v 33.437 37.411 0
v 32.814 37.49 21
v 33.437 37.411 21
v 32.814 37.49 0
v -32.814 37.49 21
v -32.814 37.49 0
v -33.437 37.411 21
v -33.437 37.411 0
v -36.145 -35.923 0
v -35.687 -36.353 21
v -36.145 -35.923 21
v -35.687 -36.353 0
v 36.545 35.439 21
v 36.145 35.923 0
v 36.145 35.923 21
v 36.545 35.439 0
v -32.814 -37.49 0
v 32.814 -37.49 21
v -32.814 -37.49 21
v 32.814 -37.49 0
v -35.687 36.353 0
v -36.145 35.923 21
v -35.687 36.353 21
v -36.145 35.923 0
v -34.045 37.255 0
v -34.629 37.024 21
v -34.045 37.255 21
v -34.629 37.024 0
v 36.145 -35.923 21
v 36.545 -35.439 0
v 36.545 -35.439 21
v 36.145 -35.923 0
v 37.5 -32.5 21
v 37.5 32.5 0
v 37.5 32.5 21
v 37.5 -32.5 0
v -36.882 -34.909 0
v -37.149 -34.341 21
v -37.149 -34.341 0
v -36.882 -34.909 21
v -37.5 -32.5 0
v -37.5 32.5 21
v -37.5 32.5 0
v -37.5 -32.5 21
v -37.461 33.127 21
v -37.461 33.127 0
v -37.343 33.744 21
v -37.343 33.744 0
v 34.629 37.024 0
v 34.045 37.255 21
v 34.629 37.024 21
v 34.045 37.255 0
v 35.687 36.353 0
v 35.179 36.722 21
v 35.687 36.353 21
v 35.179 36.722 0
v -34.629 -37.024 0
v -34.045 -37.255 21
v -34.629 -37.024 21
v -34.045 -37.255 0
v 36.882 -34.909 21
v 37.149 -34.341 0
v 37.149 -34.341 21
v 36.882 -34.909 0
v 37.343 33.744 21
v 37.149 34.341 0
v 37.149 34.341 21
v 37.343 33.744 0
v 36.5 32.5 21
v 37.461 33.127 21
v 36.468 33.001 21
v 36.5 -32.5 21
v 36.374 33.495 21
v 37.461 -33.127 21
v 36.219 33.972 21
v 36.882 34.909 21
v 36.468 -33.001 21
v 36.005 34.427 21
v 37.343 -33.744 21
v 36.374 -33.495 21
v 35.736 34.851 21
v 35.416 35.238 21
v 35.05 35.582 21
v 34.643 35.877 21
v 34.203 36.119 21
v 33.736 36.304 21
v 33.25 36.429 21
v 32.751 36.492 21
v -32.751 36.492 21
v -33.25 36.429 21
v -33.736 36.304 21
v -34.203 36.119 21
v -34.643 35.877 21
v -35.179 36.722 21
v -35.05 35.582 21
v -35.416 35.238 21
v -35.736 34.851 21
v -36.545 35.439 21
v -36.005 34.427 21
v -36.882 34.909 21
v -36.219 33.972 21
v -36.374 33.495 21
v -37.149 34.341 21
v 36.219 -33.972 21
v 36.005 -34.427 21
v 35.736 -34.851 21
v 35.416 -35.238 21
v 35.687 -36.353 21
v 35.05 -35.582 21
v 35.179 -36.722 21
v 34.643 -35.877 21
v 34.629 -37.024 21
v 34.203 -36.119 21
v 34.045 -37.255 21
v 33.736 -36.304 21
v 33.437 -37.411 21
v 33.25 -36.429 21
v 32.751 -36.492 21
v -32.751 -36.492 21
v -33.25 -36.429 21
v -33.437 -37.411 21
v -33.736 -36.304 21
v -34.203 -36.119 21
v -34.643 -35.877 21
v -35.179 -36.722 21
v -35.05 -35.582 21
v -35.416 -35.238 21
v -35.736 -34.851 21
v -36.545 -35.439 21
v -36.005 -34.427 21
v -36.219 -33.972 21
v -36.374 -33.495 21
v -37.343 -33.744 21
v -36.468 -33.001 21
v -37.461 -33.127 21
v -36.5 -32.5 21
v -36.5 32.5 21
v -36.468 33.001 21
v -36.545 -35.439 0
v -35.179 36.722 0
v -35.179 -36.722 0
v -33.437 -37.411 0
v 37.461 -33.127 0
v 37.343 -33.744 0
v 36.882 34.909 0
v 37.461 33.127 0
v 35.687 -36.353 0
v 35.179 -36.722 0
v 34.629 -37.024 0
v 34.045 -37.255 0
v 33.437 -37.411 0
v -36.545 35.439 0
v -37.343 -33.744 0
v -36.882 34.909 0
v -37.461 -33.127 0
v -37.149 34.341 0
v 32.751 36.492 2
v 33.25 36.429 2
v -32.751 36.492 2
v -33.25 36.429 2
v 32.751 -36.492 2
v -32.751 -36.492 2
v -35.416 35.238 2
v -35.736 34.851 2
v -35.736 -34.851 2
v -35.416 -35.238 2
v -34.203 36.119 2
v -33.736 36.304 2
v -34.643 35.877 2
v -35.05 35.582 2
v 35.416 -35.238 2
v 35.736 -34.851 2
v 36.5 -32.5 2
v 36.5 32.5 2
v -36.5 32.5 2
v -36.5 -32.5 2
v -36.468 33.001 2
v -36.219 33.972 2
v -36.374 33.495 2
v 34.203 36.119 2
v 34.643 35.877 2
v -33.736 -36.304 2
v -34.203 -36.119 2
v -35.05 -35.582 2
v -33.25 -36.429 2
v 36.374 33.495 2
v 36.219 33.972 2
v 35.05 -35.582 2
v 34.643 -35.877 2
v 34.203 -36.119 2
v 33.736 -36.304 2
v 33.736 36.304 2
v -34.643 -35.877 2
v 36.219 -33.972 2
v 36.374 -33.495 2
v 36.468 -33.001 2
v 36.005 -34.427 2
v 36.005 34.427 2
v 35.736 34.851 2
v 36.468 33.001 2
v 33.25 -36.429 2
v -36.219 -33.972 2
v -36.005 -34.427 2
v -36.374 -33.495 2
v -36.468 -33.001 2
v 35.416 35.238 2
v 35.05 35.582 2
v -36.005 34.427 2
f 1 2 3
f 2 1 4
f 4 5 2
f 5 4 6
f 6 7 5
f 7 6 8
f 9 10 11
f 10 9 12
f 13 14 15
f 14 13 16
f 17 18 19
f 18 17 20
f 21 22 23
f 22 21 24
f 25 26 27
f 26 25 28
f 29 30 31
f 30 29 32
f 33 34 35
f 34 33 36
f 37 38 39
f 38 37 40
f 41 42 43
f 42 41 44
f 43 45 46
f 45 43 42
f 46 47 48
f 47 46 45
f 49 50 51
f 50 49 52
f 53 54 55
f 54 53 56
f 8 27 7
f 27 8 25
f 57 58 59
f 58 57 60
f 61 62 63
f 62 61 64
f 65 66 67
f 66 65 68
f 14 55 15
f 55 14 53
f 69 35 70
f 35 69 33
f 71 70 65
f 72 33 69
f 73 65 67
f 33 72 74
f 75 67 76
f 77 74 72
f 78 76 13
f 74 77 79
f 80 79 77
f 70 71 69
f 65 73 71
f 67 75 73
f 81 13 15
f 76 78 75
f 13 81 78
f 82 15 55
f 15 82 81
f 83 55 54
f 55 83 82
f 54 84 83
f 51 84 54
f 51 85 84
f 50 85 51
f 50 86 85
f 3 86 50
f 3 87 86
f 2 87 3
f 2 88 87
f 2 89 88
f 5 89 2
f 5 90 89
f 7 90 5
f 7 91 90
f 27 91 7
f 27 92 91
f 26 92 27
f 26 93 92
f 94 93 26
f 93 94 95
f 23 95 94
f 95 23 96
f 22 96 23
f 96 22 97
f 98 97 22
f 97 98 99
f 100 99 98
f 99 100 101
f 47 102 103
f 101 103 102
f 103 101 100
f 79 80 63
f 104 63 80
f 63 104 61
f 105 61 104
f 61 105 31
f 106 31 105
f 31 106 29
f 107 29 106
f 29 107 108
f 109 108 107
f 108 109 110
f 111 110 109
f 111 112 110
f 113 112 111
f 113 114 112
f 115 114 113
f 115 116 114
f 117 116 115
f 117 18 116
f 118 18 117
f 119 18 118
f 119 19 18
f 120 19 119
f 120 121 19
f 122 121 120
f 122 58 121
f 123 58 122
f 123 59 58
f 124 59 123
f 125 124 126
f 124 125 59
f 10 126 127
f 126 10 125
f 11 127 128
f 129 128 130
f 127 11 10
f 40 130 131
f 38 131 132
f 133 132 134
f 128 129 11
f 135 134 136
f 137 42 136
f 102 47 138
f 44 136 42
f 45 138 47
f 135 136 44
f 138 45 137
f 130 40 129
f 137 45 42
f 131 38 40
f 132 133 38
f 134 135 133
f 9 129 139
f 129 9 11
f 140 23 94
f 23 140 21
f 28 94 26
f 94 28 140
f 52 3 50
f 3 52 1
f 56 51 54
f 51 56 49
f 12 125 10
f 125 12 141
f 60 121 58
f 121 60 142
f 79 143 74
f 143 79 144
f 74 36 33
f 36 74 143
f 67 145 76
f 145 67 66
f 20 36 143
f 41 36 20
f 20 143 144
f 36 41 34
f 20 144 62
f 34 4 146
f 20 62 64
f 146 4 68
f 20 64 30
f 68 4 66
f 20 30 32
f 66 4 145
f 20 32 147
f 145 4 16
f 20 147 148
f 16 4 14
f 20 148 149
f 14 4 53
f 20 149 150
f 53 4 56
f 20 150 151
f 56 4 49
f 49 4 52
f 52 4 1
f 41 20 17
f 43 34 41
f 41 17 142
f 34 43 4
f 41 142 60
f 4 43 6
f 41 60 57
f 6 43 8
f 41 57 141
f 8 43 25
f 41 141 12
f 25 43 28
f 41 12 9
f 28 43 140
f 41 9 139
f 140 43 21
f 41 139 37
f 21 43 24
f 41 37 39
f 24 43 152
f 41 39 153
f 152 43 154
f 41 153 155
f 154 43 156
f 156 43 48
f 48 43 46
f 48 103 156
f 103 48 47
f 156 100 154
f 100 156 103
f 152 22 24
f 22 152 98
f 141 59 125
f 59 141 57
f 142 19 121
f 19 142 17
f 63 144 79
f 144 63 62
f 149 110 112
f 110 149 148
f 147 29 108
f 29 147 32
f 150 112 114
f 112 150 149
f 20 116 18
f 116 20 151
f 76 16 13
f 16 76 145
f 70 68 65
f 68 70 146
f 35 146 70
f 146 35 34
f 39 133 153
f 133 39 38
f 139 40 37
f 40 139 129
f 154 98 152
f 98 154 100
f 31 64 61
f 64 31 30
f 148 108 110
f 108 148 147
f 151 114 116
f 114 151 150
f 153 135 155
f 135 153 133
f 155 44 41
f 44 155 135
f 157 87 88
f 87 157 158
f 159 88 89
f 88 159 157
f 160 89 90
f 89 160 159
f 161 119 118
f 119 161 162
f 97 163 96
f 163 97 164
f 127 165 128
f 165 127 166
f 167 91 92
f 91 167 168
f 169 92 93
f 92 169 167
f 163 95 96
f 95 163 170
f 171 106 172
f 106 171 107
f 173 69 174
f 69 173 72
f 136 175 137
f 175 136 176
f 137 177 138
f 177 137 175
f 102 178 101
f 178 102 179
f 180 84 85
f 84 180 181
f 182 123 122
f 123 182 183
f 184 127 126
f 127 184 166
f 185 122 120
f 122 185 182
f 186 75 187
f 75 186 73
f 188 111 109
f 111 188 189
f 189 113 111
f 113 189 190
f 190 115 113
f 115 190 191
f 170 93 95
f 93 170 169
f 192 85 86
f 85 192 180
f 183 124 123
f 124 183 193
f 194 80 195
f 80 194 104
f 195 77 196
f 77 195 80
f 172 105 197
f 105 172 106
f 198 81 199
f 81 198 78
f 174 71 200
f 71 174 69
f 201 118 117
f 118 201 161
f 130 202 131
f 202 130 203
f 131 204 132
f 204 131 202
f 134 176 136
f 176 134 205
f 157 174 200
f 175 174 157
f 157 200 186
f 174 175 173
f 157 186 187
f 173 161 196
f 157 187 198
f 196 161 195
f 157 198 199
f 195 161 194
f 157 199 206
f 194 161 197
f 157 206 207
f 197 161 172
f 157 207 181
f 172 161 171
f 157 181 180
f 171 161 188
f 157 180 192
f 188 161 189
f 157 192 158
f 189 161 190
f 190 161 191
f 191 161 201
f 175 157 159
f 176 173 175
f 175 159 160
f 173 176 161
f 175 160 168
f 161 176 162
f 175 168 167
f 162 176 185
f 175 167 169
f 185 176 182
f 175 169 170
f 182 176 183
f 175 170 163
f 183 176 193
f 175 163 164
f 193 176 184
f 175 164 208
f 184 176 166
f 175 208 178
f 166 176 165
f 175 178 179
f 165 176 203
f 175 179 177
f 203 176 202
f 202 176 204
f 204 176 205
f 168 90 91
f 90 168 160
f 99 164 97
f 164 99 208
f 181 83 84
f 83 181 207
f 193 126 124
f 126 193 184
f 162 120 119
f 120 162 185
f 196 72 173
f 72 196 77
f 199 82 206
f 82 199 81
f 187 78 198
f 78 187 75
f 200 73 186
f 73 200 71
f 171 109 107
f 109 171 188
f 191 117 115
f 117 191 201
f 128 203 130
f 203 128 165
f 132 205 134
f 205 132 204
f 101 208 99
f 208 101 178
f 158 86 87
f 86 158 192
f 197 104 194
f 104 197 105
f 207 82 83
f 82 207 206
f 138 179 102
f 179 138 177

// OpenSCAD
$fn = 50;


difference() {
	union() {
		hull() {
			translate(v = [-32.5000000000, 32.5000000000, 0]) {
				cylinder(h = 21, r = 5);
			}
			translate(v = [32.5000000000, 32.5000000000, 0]) {
				cylinder(h = 21, r = 5);
			}
			translate(v = [-32.5000000000, -32.5000000000, 0]) {
				cylinder(h = 21, r = 5);
			}
			translate(v = [32.5000000000, -32.5000000000, 0]) {
				cylinder(h = 21, r = 5);
			}
		}
	}
	union() {
		translate(v = [0, 0, 2]) {
			hull() {
				translate(v = [-32.5000000000, 32.5000000000, 0]) {
					cylinder(h = 19, r = 4);
				}
				translate(v = [32.5000000000, 32.5000000000, 0]) {
					cylinder(h = 19, r = 4);
				}
				translate(v = [-32.5000000000, -32.5000000000, 0]) {
					cylinder(h = 19, r = 4);
				}
				translate(v = [32.5000000000, -32.5000000000, 0]) {
					cylinder(h = 19, r = 4);
				}
			}
		}
	}
}
